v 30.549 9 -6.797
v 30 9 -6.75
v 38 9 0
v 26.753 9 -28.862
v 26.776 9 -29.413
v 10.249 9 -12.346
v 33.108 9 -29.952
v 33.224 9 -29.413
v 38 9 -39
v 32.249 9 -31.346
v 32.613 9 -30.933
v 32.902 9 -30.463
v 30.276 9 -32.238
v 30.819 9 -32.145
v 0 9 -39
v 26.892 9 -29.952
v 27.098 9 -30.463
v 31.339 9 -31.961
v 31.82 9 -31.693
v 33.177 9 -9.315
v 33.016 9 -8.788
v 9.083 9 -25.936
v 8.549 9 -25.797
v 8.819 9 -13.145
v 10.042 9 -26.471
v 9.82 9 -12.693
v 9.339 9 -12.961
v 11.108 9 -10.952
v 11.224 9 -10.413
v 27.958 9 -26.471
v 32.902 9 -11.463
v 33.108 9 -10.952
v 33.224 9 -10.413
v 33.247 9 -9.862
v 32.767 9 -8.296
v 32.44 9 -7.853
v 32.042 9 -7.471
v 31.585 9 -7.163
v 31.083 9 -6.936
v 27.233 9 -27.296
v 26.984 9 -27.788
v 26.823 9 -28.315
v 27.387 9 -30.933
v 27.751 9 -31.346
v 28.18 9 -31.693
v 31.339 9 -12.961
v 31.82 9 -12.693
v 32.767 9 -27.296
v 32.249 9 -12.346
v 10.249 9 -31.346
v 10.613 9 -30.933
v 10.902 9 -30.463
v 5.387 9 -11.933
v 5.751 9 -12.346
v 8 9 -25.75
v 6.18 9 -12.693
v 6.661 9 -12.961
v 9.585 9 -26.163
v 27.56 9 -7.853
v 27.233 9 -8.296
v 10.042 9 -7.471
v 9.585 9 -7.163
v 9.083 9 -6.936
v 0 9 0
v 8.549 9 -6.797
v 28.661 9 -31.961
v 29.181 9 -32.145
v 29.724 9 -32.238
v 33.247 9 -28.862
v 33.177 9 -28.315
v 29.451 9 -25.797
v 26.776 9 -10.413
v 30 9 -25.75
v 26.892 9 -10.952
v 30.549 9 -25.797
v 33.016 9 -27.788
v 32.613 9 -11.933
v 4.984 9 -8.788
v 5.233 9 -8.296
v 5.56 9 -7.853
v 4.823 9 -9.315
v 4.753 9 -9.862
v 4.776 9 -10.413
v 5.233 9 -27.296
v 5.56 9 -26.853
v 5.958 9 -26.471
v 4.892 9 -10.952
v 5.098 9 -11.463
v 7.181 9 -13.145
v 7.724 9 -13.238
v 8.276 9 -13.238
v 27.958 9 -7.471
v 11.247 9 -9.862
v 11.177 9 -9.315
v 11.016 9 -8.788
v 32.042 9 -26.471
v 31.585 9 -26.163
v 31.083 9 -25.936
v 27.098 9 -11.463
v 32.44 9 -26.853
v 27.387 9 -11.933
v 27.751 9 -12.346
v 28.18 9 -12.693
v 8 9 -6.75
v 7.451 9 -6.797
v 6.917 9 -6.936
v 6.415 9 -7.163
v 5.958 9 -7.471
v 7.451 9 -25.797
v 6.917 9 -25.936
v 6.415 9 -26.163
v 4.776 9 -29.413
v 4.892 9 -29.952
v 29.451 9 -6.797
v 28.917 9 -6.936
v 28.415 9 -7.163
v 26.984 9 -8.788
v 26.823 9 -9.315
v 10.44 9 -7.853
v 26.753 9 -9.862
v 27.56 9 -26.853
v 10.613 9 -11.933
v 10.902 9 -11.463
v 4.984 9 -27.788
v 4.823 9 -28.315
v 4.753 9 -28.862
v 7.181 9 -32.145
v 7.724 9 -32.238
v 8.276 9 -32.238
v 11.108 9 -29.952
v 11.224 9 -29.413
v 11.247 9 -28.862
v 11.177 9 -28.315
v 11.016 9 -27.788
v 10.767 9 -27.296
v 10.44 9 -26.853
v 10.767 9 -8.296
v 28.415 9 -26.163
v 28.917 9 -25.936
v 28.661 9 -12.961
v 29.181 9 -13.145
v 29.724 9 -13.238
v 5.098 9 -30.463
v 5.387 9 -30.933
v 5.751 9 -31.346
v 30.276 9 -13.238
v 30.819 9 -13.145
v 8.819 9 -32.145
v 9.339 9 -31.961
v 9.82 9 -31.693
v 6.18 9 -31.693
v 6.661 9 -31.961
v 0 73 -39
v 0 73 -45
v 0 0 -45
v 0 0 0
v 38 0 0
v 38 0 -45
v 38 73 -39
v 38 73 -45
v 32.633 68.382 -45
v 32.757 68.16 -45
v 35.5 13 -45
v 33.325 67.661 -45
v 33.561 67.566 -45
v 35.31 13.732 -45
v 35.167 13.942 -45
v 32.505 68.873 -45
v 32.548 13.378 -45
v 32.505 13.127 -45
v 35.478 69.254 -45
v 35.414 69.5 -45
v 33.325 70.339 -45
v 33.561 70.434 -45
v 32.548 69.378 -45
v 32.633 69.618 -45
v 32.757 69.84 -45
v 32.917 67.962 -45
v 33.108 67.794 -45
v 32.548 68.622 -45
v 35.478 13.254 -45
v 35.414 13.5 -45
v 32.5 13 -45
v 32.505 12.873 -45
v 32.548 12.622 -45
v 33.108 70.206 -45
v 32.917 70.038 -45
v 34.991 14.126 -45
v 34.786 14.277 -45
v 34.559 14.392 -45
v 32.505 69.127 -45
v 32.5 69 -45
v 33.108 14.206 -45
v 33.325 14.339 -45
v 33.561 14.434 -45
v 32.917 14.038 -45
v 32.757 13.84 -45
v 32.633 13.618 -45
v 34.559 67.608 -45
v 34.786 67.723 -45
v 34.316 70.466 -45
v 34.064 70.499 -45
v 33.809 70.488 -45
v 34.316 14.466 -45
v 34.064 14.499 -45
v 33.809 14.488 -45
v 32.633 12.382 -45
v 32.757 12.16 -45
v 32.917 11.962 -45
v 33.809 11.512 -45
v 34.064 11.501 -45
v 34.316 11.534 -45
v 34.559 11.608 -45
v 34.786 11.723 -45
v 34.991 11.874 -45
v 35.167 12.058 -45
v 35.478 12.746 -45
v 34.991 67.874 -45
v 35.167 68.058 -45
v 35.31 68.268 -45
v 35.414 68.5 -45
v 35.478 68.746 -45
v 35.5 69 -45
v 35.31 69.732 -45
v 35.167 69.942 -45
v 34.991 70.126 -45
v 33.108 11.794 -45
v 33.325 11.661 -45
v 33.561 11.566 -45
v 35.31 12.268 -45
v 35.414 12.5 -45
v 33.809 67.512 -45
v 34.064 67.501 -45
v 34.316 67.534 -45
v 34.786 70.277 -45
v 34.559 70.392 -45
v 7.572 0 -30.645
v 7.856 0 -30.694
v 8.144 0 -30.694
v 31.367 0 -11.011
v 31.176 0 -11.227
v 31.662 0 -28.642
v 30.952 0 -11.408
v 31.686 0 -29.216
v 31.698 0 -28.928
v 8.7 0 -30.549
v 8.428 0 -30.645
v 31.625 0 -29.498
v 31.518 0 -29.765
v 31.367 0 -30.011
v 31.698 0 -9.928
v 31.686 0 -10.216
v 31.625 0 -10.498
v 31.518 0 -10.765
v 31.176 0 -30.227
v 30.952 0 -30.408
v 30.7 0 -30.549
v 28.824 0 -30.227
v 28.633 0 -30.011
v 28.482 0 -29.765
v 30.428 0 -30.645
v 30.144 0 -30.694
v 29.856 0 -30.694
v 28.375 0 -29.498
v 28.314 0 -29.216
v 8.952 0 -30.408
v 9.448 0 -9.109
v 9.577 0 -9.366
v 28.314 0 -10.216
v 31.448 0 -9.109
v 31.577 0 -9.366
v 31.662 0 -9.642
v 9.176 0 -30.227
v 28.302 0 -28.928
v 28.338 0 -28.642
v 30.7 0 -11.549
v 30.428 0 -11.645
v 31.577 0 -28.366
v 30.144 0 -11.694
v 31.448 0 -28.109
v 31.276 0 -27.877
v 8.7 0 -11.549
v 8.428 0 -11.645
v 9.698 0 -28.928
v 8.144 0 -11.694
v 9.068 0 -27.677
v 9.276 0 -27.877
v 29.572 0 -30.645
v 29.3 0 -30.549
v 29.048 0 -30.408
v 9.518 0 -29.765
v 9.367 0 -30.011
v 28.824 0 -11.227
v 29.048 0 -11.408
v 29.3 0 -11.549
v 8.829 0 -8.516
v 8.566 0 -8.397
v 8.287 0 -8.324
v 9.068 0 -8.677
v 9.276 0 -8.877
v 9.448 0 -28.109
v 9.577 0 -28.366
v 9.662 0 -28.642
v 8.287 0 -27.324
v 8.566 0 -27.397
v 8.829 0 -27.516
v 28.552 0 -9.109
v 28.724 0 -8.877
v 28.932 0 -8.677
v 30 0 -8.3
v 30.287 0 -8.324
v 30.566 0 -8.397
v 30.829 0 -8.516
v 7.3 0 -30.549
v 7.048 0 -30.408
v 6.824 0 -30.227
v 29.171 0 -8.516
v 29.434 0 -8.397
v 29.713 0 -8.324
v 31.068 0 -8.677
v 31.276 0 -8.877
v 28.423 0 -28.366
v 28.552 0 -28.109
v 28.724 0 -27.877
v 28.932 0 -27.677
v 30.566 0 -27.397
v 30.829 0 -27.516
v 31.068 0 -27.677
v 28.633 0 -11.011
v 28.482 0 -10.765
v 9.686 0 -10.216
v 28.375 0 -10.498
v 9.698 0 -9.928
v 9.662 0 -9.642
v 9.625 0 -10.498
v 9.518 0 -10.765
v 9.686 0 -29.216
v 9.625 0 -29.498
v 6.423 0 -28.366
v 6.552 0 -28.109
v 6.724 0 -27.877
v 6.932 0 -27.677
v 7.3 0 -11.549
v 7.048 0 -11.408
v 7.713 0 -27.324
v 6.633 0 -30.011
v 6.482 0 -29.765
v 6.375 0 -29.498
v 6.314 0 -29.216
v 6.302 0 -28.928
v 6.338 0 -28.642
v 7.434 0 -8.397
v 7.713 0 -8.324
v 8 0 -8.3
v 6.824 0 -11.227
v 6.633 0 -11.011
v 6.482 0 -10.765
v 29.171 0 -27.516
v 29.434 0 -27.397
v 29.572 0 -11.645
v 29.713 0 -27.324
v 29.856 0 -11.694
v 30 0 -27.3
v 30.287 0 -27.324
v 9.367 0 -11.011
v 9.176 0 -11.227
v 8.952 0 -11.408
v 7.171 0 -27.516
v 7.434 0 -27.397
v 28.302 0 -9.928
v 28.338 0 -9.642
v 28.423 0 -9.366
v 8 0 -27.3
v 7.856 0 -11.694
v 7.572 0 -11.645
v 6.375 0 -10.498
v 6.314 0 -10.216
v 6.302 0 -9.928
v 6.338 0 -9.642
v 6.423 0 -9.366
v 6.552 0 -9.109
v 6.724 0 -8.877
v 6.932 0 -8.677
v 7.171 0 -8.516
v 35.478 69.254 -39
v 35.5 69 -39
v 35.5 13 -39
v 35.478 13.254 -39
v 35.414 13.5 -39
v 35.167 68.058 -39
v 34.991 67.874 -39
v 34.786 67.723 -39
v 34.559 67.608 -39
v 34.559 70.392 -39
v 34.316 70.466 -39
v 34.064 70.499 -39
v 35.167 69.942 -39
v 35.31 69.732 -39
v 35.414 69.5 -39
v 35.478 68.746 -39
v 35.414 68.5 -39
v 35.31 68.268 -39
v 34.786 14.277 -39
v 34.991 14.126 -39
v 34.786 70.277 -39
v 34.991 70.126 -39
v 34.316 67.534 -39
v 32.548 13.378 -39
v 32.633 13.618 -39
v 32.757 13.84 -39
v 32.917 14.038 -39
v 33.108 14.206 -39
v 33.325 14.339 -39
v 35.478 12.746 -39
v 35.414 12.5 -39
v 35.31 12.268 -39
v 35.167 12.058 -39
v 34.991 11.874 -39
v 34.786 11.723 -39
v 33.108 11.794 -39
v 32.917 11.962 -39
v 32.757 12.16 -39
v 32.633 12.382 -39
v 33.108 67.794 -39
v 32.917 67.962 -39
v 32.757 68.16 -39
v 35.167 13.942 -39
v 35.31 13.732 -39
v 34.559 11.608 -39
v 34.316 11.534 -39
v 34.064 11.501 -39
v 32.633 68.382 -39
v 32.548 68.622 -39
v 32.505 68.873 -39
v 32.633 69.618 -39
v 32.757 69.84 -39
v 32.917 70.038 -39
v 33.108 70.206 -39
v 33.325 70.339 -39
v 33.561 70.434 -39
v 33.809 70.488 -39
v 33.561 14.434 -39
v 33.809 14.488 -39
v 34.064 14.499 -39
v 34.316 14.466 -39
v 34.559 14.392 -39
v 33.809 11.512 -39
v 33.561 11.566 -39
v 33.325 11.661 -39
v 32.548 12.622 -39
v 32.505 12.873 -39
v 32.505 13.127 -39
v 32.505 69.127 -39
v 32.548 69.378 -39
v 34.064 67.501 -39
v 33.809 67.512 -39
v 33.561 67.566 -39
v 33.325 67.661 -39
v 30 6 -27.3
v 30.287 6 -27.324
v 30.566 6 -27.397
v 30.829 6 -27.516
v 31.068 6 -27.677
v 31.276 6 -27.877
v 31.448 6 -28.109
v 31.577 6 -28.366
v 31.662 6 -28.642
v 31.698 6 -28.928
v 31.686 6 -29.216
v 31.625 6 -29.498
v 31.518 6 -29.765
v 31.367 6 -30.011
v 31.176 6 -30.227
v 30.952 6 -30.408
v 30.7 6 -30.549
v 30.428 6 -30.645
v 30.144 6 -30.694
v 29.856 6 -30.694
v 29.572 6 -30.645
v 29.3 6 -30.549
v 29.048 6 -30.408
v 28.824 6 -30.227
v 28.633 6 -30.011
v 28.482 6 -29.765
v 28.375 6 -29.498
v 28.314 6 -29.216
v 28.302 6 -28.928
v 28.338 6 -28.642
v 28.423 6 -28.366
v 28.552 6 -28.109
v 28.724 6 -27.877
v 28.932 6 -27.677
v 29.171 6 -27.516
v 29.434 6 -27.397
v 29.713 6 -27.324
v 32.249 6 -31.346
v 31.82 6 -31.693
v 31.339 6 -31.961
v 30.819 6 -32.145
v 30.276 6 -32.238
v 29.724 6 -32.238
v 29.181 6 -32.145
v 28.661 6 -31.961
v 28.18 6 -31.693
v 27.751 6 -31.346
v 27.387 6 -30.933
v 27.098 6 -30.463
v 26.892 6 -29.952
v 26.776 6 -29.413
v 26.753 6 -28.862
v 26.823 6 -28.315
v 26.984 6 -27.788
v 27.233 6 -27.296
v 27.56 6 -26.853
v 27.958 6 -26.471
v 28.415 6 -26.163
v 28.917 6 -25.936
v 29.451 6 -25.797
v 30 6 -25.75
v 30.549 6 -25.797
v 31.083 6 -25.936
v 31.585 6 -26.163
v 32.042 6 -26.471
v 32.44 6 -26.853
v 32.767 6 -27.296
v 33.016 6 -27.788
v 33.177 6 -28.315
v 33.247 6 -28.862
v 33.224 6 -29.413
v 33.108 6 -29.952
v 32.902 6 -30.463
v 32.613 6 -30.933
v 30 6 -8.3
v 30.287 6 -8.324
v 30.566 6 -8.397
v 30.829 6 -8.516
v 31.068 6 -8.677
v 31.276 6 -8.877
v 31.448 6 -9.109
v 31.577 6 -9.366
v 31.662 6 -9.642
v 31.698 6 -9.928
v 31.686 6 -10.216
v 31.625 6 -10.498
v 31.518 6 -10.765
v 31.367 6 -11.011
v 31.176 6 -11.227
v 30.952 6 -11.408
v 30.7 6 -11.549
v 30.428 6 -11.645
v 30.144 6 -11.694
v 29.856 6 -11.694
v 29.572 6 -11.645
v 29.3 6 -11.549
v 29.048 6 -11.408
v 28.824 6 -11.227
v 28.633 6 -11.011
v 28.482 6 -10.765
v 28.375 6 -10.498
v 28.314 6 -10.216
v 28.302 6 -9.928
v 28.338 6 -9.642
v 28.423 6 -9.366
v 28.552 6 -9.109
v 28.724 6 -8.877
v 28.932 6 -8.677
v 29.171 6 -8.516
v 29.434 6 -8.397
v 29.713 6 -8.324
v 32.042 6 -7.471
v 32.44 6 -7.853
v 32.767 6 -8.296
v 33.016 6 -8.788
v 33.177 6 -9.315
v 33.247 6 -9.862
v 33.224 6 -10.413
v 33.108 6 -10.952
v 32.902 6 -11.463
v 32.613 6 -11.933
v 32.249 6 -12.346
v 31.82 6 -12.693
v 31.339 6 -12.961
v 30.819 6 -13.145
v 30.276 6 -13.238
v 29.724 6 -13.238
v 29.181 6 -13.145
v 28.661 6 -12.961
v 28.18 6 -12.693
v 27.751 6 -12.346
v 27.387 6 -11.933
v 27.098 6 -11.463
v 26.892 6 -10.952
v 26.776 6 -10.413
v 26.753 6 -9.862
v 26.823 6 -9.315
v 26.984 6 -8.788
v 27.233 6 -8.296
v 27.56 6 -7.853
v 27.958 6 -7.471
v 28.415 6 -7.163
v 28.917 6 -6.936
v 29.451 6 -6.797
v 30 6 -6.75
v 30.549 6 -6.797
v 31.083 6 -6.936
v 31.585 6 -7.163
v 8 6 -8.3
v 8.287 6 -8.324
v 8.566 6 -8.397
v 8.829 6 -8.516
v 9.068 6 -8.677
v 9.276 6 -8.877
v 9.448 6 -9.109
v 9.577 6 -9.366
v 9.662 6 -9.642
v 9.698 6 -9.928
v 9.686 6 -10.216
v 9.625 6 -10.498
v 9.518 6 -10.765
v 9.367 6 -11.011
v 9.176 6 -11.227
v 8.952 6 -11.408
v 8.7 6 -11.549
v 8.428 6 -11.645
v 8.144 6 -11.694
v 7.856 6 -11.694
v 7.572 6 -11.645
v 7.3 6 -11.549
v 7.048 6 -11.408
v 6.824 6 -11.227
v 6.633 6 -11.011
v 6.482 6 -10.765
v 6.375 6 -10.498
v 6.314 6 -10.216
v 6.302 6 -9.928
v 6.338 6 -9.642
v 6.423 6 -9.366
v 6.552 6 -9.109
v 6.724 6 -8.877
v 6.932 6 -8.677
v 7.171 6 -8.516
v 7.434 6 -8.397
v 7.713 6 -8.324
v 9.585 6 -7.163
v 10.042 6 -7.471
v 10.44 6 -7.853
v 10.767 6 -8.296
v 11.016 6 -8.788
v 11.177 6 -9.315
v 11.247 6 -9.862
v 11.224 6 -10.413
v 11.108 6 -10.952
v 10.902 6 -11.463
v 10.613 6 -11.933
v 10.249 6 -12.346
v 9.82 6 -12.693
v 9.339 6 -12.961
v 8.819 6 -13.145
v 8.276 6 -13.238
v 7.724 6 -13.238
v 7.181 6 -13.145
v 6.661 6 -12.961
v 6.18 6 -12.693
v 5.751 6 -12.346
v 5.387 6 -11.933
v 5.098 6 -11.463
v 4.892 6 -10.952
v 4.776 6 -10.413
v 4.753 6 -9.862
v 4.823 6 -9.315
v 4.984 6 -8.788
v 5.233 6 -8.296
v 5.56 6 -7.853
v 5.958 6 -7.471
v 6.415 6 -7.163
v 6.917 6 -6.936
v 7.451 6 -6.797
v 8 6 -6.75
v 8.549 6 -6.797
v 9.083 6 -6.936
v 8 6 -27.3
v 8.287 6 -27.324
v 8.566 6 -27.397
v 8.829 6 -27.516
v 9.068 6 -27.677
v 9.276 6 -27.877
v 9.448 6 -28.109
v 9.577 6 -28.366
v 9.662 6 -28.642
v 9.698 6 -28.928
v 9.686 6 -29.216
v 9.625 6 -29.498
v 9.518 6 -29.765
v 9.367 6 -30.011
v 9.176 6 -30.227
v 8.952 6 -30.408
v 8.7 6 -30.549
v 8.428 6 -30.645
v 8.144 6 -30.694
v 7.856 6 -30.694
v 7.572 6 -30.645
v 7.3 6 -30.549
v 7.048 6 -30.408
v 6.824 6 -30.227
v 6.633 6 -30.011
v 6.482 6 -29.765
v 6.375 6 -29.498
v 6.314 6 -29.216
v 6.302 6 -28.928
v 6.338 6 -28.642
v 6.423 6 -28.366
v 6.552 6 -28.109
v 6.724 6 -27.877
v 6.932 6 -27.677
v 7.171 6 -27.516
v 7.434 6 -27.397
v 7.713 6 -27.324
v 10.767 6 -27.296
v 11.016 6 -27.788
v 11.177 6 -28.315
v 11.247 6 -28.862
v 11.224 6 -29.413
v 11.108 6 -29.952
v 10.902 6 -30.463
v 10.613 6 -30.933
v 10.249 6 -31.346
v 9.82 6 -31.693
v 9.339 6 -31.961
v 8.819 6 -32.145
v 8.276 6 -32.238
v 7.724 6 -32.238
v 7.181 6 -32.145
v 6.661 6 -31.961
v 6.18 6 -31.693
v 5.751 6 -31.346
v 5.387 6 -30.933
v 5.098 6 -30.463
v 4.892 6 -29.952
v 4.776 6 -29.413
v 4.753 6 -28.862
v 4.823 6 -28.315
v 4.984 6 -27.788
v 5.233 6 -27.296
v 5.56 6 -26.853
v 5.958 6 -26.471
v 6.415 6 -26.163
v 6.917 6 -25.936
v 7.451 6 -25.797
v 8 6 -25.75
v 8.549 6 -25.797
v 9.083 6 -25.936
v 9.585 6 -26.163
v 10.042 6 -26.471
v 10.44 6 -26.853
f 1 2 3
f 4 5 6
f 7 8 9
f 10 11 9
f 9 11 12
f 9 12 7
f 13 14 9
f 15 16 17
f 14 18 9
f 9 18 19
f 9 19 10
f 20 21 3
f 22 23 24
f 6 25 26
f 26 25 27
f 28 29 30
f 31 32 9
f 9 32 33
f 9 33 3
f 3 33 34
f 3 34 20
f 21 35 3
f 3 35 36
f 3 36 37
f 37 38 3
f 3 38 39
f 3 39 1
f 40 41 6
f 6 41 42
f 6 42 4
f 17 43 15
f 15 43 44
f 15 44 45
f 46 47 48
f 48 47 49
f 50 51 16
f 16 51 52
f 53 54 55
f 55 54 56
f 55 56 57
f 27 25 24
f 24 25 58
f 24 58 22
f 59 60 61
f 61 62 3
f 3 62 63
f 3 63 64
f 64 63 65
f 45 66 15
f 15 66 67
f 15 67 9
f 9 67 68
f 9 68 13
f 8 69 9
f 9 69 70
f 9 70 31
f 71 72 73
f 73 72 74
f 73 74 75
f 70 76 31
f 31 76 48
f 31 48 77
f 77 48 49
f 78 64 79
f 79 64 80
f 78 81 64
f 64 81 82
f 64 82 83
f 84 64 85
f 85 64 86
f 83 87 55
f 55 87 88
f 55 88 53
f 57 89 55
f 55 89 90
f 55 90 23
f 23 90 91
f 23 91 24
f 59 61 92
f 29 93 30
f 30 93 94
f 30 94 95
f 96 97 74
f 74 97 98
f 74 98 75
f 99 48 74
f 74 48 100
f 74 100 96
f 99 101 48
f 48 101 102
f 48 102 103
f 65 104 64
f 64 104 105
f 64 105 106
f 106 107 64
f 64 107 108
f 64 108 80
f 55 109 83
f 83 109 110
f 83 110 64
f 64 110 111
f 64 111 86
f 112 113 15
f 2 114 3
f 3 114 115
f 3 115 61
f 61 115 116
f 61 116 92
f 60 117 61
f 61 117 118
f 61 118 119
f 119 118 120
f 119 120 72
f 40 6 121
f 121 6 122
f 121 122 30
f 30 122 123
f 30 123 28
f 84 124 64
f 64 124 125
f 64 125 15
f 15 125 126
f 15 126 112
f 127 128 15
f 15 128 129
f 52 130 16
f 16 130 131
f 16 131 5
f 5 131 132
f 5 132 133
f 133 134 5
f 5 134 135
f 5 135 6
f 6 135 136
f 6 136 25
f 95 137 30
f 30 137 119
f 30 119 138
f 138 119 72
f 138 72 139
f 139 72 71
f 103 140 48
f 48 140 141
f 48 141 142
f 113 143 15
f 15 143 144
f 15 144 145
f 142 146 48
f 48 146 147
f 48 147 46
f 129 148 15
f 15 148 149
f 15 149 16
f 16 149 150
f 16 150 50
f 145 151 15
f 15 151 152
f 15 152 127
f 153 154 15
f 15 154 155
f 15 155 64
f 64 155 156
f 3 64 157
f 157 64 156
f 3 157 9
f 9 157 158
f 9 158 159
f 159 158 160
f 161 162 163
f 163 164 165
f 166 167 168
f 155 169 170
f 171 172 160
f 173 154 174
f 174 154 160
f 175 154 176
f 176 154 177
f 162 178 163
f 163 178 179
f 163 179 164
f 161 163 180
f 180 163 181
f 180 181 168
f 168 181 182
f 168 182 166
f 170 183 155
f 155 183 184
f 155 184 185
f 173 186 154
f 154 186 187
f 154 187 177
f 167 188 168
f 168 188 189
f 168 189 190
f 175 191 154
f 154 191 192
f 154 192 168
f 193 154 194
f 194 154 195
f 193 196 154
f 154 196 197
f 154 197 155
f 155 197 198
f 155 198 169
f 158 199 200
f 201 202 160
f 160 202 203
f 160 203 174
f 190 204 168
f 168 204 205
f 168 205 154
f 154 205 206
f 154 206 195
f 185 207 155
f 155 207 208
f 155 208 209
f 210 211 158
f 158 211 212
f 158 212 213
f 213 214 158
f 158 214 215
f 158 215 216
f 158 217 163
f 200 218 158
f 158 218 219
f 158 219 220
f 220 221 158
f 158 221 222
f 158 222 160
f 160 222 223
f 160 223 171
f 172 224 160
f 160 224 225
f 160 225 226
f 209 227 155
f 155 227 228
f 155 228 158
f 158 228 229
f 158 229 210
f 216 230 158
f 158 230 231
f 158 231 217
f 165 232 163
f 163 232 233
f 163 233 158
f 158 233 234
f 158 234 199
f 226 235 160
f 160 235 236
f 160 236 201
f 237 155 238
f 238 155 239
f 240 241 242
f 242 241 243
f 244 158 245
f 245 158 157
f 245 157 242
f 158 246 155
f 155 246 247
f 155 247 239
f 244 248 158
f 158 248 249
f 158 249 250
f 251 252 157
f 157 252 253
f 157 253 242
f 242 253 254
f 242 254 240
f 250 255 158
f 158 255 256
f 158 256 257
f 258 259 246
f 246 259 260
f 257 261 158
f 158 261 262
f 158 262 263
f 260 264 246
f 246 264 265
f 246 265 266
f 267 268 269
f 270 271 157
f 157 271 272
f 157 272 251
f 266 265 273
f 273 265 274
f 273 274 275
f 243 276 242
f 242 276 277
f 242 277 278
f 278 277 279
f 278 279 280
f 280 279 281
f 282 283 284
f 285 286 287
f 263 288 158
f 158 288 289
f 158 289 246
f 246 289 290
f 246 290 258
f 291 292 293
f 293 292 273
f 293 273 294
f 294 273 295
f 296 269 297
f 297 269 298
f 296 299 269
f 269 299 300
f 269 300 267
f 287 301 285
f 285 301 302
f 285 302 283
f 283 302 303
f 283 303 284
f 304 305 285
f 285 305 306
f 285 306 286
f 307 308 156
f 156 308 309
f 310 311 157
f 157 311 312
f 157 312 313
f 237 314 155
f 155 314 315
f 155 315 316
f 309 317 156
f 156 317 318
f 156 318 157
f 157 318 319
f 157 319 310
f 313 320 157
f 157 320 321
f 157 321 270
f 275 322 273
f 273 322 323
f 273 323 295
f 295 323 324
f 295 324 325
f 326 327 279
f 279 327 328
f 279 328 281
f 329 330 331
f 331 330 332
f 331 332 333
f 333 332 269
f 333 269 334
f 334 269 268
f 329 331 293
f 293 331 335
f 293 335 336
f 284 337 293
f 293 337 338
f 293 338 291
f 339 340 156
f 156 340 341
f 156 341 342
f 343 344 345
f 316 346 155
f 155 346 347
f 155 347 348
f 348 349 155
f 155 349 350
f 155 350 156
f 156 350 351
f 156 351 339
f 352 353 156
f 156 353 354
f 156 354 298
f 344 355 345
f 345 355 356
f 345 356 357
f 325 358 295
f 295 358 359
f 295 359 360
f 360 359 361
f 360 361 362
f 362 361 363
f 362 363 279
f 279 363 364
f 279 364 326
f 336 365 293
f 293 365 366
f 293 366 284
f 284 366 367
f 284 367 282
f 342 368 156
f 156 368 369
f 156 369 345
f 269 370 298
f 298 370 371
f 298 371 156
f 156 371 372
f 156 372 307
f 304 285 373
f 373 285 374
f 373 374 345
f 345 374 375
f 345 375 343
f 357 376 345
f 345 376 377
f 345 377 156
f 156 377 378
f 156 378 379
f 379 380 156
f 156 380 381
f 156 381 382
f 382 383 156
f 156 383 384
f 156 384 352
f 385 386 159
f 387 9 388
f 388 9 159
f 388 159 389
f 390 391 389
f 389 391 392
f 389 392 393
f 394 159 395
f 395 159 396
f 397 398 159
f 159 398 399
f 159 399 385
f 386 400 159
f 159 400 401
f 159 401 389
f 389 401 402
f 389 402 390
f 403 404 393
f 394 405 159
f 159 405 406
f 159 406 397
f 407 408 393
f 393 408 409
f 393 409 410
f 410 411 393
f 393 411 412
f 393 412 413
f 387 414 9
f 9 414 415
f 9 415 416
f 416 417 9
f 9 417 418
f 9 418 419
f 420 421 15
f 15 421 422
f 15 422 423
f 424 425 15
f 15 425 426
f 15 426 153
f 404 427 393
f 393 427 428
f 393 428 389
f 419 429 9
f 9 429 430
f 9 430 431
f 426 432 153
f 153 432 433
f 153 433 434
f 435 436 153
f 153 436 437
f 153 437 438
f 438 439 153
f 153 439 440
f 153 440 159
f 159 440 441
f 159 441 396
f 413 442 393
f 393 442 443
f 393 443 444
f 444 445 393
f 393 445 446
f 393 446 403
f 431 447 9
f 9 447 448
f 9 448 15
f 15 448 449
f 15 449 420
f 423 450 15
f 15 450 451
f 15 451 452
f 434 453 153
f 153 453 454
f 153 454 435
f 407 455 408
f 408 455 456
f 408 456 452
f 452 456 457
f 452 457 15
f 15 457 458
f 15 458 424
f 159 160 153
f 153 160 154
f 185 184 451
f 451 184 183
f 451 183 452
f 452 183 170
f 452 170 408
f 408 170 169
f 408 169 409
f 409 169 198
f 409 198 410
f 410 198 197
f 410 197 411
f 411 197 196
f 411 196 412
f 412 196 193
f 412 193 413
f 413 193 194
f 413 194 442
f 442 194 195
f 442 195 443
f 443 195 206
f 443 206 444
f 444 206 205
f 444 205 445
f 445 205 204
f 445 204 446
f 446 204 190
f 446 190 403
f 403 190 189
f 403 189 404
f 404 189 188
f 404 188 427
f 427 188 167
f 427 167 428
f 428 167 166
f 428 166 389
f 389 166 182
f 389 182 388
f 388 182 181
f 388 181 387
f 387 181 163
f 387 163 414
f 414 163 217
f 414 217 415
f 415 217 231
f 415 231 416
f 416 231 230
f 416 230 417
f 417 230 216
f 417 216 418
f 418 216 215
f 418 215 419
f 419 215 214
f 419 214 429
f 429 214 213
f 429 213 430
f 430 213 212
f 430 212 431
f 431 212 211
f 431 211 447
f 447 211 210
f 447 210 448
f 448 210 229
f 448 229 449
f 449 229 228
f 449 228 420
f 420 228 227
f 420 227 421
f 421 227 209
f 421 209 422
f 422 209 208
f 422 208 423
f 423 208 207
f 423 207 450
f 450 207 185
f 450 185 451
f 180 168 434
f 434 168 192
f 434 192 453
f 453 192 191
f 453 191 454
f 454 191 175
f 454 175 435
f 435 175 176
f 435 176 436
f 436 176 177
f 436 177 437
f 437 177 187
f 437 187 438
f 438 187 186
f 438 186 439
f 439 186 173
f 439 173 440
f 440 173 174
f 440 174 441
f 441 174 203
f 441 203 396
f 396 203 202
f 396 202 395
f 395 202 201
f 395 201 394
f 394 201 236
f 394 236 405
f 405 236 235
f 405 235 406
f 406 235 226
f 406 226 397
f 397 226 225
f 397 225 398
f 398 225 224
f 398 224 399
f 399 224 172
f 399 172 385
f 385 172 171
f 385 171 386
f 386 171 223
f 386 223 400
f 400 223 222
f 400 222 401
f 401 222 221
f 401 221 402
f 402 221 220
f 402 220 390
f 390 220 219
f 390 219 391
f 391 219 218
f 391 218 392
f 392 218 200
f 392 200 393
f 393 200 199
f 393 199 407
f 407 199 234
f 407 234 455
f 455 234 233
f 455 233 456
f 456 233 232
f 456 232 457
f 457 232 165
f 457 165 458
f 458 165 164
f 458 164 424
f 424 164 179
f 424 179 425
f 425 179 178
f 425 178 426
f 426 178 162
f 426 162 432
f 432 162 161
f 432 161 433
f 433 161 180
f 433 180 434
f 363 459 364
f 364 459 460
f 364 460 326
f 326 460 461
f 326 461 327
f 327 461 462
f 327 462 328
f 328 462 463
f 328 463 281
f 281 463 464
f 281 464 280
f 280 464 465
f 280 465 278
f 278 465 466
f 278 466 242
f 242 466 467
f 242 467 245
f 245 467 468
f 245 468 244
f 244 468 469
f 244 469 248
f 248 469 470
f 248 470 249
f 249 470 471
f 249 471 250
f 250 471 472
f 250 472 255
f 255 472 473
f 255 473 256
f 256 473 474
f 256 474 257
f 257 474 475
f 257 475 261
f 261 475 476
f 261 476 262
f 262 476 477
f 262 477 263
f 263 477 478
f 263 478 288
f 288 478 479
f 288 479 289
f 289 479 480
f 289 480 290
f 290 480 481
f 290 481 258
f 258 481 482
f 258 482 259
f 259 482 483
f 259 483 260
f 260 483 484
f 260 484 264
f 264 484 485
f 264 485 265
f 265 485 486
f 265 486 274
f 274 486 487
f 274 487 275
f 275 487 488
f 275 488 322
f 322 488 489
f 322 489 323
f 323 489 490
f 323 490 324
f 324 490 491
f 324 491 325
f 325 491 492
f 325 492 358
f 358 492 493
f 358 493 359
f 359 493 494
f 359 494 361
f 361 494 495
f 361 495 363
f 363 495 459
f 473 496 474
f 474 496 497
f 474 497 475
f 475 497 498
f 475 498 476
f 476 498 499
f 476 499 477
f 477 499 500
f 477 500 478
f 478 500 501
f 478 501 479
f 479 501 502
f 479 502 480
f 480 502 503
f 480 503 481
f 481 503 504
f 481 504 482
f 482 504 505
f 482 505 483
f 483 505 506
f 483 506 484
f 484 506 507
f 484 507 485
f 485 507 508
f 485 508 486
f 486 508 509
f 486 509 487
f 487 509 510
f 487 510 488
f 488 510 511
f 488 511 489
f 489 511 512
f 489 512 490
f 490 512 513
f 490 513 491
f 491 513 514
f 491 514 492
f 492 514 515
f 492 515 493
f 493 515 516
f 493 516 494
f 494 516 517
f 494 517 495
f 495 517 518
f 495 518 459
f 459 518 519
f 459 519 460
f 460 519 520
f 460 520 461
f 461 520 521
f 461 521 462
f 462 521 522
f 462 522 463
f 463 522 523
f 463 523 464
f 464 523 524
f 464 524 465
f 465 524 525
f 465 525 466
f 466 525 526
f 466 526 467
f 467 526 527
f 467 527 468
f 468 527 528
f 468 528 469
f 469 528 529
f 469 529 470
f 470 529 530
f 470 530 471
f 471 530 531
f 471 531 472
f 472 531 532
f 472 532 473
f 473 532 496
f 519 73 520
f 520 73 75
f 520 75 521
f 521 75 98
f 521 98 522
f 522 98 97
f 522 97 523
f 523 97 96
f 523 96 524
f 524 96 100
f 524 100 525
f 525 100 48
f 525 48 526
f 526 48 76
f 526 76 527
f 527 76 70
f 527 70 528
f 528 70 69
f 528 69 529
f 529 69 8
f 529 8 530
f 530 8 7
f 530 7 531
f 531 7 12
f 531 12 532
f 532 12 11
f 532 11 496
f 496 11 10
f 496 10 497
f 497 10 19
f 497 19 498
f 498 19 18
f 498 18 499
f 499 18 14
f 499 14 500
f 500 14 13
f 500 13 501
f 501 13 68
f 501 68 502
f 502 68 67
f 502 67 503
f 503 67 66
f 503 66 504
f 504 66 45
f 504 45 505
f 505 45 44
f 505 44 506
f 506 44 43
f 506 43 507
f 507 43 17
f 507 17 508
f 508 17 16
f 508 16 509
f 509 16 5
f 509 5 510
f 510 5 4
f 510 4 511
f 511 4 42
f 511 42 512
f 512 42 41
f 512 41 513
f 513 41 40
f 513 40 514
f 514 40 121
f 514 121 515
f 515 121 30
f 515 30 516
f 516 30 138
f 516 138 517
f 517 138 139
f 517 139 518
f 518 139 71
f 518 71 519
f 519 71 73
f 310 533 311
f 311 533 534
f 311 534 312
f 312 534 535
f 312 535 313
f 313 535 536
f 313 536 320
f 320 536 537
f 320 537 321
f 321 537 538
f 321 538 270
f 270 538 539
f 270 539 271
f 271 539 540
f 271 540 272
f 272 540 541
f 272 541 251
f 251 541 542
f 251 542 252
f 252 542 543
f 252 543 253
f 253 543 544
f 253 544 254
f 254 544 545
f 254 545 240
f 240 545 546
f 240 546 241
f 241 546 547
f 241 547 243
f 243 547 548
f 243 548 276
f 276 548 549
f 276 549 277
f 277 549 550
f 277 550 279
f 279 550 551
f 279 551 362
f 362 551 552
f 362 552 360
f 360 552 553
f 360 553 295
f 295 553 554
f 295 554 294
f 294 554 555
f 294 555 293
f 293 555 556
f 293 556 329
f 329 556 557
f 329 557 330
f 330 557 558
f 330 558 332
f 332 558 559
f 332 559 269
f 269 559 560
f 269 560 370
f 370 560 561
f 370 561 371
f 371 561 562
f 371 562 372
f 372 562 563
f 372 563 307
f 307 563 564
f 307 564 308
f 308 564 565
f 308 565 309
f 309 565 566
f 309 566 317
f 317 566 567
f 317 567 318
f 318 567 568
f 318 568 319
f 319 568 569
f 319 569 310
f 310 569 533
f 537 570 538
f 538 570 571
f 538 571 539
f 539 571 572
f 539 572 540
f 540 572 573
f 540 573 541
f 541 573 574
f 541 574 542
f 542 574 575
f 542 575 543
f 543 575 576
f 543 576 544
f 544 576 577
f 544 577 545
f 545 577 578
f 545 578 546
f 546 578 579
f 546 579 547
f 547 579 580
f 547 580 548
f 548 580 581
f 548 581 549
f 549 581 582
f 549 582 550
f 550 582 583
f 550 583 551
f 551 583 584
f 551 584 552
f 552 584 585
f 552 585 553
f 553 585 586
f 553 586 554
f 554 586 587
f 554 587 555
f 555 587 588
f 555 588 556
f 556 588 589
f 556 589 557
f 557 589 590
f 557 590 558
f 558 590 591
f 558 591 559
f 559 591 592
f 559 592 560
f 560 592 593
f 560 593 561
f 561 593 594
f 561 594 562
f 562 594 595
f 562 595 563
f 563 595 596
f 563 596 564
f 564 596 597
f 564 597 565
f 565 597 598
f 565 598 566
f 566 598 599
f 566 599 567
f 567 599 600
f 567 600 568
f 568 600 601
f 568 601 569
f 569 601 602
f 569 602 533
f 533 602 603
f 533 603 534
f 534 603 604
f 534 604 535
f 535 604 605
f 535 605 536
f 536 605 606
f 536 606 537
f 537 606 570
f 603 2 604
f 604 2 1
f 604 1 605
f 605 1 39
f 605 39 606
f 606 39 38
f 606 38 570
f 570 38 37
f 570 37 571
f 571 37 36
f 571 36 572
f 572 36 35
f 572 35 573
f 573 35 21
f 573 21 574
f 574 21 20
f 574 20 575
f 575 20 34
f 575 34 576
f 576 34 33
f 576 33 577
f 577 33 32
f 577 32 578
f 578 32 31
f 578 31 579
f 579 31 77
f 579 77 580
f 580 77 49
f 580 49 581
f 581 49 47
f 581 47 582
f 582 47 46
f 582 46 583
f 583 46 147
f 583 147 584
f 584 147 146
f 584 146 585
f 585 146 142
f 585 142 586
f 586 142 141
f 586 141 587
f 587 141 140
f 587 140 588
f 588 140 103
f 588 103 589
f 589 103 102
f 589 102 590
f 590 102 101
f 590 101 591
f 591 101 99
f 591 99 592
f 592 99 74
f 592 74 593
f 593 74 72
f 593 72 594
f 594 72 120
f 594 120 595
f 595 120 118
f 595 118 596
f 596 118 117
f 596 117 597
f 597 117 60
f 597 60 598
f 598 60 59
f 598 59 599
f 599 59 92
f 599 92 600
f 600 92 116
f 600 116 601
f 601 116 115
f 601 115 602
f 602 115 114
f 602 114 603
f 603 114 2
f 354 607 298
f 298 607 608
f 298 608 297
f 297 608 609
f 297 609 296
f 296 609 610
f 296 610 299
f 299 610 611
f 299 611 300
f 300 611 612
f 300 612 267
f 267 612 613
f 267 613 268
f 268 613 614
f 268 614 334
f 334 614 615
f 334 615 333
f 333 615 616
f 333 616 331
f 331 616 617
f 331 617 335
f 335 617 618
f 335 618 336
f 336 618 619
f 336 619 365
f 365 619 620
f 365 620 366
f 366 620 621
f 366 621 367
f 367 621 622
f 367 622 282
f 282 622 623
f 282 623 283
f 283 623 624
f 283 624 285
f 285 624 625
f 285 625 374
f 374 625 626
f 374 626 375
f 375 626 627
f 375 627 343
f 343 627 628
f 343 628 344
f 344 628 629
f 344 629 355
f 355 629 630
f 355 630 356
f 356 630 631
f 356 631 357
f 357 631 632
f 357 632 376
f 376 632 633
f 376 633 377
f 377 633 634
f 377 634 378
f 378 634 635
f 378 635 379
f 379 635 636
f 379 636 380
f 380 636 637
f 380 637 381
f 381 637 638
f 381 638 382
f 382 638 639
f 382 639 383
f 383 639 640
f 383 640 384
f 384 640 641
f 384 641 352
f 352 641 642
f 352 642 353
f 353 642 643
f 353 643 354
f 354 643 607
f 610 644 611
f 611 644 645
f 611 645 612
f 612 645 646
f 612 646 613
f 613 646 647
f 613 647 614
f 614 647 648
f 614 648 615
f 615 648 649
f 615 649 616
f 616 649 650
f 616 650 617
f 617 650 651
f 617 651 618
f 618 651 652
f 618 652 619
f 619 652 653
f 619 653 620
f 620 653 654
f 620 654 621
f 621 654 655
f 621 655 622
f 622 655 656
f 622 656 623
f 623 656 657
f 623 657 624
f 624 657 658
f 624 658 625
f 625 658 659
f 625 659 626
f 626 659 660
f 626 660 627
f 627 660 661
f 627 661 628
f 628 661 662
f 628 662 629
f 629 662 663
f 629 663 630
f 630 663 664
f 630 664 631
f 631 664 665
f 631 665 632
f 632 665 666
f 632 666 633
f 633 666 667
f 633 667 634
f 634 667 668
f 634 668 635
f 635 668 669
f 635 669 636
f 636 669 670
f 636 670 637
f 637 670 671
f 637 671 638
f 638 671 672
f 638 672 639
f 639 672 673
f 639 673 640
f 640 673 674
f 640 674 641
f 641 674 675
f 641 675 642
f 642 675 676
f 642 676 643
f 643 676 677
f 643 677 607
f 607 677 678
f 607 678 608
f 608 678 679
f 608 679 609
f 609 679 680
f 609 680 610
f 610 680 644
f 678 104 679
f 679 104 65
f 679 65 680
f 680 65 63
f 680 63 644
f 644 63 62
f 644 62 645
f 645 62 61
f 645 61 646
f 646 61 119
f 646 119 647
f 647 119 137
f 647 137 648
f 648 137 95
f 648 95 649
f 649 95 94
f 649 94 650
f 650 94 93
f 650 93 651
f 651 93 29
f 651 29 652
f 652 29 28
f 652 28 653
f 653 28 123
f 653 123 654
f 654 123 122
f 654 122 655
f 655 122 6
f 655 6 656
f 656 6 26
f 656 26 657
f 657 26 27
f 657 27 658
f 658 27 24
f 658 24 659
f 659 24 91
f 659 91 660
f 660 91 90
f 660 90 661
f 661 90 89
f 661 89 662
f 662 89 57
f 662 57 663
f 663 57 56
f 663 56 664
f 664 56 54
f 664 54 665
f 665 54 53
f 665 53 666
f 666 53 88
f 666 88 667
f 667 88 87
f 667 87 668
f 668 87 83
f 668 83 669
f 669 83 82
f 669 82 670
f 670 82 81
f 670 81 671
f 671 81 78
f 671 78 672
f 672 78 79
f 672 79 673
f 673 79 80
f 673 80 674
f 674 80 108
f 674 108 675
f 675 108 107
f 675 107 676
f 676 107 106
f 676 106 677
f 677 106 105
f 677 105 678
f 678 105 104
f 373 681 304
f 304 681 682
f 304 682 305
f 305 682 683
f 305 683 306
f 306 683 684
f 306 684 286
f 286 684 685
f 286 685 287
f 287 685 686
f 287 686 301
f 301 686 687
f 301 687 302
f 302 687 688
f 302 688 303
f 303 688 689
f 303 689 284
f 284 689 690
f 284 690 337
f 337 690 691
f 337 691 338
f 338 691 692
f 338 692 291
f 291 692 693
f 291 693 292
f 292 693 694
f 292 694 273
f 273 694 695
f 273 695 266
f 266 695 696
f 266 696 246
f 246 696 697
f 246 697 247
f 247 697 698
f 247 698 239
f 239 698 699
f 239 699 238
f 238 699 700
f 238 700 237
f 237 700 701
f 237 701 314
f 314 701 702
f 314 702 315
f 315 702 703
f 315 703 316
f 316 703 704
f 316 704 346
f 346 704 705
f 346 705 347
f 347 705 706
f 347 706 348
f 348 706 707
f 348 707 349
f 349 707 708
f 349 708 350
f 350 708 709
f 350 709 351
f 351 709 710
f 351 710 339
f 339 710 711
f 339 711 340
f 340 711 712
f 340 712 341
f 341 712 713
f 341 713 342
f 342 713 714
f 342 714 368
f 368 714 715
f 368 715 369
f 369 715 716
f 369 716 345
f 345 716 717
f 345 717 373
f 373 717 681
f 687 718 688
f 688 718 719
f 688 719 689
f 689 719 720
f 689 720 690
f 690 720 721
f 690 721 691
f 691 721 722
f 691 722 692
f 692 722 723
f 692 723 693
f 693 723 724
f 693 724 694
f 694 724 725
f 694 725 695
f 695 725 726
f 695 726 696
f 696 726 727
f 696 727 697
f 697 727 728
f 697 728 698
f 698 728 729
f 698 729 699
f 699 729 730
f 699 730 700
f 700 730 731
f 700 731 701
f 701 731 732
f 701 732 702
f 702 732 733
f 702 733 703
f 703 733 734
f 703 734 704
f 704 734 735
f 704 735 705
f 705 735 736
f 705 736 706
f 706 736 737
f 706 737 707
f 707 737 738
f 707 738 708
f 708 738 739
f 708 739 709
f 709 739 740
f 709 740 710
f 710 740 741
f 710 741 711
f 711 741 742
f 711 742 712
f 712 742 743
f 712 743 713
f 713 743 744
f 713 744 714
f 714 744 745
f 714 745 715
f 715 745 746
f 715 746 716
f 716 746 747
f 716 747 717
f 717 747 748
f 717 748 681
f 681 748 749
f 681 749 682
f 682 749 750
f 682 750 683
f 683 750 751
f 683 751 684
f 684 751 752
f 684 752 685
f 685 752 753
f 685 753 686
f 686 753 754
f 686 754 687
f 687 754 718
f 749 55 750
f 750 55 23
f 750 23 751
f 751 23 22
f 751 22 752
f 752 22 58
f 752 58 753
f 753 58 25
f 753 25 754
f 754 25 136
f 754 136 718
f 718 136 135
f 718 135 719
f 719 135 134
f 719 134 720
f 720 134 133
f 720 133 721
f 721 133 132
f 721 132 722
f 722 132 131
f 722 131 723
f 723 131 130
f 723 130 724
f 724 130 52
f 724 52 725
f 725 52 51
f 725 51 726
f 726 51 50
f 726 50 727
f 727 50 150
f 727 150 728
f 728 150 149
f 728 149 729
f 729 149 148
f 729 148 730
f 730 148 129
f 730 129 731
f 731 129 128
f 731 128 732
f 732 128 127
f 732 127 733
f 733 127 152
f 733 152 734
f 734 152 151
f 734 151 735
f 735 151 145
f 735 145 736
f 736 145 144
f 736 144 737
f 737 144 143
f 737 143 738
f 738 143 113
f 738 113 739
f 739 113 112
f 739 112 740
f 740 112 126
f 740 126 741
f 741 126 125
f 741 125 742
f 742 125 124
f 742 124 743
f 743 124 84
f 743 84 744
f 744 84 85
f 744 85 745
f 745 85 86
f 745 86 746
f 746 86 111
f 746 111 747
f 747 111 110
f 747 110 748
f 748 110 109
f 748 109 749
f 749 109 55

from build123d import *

# Parameters (mm, degrees)
SKETCH1_W                      = 38
SKETCH1_H                      = 45
BOSS_EXTRUDE2_DEPTH            = 9
SKETCH2_W                      = 38
SKETCH2_H                      = 6
BOSS_EXTRUDE3_DEPTH            = 64
SKETCH3_R                      = 1.5
CUT_EXTRUDE1_DEPTH             = 64
CBORE_FOR_M3_SHCS1_D           = 3.4
CBORE_FOR_M3_SHCS1_CBORE_D     = 6.5
CBORE_FOR_M3_SHCS1_CBORE_DEPTH = 3


with BuildPart() as part:
    # Sketch1 → Boss-Extrude2 (new body)
    with BuildSketch(Plane(origin=(0, 0, 0), x_dir=(1, 0, 0), z_dir=(0, 1, 0))):
        with Locations((19, 22.5)):
            Rectangle(SKETCH1_W, SKETCH1_H)
    extrude(amount=BOSS_EXTRUDE2_DEPTH)

    # Sketch2 → Boss-Extrude3 (add)
    with BuildSketch(Plane(origin=(0, 9, 0), x_dir=(1, 0, 0), z_dir=(0, 1, 0))):
        with Locations((19, 42)):
            Rectangle(SKETCH2_W, SKETCH2_H)
    extrude(amount=BOSS_EXTRUDE3_DEPTH)

    # Sketch3 → Cut-Extrude1 (cut)
    with BuildSketch(Plane.XY.offset(-39)):
        with Locations((34, 69)):
            Circle(SKETCH3_R)
        with Locations((34, 13)):
            Circle(SKETCH3_R)
    extrude(amount=-CUT_EXTRUDE1_DEPTH, mode=Mode.SUBTRACT)

    # CBORE for M3 SHCS1 (through all)
    with Locations(Plane(origin=(0, 9, 0), x_dir=(1, 0, 0), z_dir=(0, 1, 0))):
        with Locations((8, 29), (8, 10), (30, 10), (30, 29)):
            CounterBoreHole(CBORE_FOR_M3_SHCS1_D / 2, CBORE_FOR_M3_SHCS1_CBORE_D / 2, CBORE_FOR_M3_SHCS1_CBORE_DEPTH)


solid = part.part
